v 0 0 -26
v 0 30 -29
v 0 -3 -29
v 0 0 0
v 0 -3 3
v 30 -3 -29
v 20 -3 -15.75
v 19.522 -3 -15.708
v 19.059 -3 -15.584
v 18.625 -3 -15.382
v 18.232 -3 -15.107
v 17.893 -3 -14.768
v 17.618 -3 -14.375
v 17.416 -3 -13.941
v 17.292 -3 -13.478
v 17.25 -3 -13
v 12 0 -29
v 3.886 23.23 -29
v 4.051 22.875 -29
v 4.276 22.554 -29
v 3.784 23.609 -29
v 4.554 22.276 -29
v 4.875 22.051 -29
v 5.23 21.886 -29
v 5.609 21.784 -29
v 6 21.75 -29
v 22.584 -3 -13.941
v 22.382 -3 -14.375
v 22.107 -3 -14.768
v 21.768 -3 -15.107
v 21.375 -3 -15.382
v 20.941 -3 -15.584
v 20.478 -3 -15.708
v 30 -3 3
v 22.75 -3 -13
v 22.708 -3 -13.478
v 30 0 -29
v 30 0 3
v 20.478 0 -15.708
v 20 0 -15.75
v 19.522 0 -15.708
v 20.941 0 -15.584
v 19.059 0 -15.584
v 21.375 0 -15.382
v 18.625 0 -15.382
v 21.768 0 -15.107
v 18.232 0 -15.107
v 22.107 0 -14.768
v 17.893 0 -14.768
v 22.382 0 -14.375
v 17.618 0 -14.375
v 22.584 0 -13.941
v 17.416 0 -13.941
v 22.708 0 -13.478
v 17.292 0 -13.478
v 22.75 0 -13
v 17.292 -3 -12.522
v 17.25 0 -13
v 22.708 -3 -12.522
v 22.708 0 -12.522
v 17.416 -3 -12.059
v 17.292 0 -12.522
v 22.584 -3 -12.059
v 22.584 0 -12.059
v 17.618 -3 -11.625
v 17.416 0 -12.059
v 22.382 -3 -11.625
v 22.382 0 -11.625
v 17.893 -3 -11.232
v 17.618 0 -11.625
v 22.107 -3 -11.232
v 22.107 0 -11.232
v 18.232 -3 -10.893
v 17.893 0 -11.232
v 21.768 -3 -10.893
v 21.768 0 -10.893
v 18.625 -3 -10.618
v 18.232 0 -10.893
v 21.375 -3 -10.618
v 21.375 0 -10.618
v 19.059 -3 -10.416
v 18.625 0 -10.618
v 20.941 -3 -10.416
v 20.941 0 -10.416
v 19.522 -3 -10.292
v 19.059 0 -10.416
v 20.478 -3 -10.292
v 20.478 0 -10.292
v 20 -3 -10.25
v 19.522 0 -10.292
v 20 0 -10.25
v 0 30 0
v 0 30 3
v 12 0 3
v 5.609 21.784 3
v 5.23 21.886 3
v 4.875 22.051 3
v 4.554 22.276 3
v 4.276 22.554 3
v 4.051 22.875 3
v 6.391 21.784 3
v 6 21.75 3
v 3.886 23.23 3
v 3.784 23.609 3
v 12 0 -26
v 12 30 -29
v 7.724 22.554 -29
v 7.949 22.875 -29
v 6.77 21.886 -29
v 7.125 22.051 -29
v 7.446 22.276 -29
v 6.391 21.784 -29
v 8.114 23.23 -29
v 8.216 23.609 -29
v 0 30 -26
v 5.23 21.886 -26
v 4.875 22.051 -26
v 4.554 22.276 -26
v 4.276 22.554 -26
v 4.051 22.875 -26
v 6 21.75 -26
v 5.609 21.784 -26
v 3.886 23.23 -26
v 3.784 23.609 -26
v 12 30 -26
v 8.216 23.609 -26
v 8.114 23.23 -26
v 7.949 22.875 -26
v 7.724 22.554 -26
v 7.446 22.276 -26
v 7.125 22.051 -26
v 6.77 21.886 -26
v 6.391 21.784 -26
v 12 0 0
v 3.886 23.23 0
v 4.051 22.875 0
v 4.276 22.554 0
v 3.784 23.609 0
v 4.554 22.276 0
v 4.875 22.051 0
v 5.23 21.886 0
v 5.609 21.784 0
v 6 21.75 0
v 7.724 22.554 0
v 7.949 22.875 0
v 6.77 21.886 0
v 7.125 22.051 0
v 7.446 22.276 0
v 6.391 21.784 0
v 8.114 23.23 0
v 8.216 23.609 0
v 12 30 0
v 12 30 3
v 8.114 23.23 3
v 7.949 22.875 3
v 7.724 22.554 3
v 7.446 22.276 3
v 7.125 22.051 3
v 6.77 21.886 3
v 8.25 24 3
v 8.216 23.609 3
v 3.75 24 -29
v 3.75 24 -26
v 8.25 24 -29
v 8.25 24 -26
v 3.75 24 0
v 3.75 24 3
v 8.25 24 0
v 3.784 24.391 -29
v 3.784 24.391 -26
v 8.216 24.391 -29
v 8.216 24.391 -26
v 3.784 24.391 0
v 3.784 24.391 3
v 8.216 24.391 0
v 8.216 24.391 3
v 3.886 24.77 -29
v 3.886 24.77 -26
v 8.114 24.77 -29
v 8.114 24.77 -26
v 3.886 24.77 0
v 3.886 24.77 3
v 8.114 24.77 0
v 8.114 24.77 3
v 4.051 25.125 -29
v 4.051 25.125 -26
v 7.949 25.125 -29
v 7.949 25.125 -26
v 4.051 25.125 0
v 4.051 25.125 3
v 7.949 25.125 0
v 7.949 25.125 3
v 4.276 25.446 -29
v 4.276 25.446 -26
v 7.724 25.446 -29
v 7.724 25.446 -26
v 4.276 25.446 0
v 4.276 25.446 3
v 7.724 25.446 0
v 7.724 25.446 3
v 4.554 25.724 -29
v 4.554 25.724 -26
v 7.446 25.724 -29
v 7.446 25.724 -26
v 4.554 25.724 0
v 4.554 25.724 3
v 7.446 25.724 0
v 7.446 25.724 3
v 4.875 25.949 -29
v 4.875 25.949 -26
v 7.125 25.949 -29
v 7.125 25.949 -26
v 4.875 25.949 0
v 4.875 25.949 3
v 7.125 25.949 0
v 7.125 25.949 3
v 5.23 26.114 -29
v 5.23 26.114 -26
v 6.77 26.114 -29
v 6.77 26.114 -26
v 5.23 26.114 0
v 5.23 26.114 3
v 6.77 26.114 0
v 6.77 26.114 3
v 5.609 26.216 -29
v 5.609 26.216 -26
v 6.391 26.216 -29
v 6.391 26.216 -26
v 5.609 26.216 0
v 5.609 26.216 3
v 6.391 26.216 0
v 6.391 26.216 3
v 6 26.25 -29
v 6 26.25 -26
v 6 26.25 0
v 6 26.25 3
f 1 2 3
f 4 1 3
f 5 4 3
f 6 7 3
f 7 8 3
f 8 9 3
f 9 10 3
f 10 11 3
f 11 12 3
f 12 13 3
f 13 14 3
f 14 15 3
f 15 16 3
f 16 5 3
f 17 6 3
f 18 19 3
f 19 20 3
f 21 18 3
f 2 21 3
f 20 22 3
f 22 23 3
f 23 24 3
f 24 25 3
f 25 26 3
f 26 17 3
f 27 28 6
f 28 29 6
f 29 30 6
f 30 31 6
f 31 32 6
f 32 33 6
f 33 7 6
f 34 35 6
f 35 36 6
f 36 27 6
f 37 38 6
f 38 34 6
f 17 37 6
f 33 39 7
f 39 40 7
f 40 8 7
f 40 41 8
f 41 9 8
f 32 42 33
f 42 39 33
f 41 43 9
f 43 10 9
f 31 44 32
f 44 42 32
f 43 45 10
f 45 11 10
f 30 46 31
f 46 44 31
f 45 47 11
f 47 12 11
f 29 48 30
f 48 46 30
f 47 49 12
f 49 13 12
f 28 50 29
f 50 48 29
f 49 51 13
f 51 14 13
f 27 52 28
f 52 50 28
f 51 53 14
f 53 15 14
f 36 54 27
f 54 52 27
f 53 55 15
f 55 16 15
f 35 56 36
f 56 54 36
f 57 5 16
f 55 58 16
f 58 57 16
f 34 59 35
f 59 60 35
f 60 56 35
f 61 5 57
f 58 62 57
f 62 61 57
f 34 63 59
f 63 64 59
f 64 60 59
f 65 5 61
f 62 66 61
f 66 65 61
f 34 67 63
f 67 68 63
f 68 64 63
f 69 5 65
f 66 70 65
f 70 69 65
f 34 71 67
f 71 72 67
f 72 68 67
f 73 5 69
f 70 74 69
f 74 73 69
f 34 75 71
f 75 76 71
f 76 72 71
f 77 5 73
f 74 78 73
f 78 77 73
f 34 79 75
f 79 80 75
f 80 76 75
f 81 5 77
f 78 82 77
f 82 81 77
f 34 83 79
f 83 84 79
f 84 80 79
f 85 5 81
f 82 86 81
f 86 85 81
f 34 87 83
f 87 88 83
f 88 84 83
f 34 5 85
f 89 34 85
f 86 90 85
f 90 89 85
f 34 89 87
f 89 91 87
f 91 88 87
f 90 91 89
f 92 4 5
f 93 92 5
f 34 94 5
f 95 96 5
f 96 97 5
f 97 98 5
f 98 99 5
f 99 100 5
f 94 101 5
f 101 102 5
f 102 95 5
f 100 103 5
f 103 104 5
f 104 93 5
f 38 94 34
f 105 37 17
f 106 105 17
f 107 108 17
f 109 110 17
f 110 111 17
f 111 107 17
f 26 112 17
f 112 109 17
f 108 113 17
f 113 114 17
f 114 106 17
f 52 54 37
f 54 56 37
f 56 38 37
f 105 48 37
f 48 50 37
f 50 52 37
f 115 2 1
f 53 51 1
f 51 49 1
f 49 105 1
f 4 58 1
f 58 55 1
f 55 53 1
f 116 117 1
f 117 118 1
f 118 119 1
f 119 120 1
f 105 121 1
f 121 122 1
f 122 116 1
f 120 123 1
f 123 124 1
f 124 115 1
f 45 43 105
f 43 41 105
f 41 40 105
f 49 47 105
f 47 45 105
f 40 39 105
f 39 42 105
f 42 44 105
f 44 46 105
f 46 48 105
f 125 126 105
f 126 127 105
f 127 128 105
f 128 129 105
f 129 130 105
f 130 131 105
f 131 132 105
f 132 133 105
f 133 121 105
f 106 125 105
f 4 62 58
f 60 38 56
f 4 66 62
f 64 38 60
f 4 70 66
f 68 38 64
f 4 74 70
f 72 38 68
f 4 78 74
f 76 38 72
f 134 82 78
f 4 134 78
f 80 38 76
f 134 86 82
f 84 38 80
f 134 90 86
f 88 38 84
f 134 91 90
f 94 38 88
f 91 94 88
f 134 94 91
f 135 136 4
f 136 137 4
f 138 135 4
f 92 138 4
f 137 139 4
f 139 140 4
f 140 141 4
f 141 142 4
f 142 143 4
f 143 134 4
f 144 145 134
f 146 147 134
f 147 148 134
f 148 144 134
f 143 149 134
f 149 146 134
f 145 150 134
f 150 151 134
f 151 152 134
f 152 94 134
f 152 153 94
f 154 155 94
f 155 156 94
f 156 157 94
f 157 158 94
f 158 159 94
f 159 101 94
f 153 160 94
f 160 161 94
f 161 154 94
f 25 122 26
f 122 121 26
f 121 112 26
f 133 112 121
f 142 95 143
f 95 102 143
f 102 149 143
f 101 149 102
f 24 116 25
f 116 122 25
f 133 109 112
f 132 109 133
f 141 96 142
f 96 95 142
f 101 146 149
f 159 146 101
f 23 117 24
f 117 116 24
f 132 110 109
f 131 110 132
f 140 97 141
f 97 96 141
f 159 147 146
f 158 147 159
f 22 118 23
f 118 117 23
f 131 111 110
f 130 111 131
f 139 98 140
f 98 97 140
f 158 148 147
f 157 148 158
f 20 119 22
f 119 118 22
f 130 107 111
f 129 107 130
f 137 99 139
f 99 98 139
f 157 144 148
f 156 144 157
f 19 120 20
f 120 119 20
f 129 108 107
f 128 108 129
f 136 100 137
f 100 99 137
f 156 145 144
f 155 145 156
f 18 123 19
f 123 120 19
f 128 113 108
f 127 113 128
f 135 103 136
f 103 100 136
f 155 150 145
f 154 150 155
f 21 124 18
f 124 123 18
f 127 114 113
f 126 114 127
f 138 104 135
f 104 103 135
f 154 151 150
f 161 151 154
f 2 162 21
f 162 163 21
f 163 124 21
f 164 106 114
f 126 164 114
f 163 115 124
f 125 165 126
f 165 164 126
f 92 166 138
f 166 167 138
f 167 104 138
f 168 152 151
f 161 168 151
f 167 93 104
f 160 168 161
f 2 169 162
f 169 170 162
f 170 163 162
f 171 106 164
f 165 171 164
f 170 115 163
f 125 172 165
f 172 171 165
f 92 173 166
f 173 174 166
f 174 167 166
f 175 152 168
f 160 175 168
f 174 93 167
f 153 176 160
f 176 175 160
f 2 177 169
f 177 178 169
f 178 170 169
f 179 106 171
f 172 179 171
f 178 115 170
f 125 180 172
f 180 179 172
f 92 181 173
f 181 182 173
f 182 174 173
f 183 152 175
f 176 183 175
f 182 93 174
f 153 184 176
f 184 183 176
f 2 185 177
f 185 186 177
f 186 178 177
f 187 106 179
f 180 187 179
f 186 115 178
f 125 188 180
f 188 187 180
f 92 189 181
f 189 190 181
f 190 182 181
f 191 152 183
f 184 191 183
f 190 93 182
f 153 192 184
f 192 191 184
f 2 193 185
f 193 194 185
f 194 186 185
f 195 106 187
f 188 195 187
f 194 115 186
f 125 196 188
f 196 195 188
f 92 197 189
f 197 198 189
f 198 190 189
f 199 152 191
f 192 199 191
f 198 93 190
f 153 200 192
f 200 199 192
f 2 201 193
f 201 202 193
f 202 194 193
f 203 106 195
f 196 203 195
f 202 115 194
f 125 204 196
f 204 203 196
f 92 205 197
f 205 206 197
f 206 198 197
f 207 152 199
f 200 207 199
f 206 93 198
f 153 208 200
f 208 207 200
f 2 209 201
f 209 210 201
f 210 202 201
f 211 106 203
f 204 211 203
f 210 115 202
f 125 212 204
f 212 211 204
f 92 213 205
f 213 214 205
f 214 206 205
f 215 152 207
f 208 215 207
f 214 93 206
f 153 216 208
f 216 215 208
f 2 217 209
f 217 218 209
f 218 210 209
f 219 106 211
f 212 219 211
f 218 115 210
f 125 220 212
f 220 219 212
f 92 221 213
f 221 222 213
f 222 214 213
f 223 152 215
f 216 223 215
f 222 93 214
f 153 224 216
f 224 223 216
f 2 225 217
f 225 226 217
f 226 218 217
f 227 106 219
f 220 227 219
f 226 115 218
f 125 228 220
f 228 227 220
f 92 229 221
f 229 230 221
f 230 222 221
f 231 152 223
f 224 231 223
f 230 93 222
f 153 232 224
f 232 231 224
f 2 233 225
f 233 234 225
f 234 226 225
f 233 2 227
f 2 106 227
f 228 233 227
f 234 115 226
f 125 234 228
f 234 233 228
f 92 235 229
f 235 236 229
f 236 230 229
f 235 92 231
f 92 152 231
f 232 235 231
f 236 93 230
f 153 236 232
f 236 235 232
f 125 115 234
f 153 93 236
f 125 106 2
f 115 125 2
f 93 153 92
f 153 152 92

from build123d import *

# Parameters (mm, degrees)
BOSS_EXTRUDE1_DEPTH  = 3
BOSS_EXTRUDE2_DEPTH  = 13
M5_CLEARANCE_HOLE1_D = 5.5
M4_CLEARANCE_HOLE1_D = 4.5


with BuildPart() as part:
    # Sketch1 → Boss-Extrude1 (new body)
    with BuildSketch(Plane.XY):
        Polygon((0, 30), (0, -3), (30, -3), (30, 0), (12, 0), (12, 30), align=None)
    extrude(amount=BOSS_EXTRUDE1_DEPTH)

    # Sketch1<3> → Boss-Extrude2 (add)
    with BuildSketch(Plane.XY):
        Polygon((12, 0), (0, 0), (0, -3), (30, -3), (30, 0), align=None)
    extrude(amount=-BOSS_EXTRUDE2_DEPTH)

    # Mirror1: part across plane


with BuildPart() as part_1:
    add(part.part)
    add(part.part.mirror(Plane.XY.offset(-13)))

    # M5 Clearance Hole1 (through all)
    with Locations(Plane(origin=(0, 0, 0), x_dir=(1, 0, 0), z_dir=(0, 1, 0))):
        with Locations((20, 13)):
            Hole(M5_CLEARANCE_HOLE1_D / 2)

    # M4 Clearance Hole1 (through all)
    with Locations(Plane.XY.offset(3)):
        with Locations((6, 24)):
            Hole(M4_CLEARANCE_HOLE1_D / 2)


solid = part_1.part
